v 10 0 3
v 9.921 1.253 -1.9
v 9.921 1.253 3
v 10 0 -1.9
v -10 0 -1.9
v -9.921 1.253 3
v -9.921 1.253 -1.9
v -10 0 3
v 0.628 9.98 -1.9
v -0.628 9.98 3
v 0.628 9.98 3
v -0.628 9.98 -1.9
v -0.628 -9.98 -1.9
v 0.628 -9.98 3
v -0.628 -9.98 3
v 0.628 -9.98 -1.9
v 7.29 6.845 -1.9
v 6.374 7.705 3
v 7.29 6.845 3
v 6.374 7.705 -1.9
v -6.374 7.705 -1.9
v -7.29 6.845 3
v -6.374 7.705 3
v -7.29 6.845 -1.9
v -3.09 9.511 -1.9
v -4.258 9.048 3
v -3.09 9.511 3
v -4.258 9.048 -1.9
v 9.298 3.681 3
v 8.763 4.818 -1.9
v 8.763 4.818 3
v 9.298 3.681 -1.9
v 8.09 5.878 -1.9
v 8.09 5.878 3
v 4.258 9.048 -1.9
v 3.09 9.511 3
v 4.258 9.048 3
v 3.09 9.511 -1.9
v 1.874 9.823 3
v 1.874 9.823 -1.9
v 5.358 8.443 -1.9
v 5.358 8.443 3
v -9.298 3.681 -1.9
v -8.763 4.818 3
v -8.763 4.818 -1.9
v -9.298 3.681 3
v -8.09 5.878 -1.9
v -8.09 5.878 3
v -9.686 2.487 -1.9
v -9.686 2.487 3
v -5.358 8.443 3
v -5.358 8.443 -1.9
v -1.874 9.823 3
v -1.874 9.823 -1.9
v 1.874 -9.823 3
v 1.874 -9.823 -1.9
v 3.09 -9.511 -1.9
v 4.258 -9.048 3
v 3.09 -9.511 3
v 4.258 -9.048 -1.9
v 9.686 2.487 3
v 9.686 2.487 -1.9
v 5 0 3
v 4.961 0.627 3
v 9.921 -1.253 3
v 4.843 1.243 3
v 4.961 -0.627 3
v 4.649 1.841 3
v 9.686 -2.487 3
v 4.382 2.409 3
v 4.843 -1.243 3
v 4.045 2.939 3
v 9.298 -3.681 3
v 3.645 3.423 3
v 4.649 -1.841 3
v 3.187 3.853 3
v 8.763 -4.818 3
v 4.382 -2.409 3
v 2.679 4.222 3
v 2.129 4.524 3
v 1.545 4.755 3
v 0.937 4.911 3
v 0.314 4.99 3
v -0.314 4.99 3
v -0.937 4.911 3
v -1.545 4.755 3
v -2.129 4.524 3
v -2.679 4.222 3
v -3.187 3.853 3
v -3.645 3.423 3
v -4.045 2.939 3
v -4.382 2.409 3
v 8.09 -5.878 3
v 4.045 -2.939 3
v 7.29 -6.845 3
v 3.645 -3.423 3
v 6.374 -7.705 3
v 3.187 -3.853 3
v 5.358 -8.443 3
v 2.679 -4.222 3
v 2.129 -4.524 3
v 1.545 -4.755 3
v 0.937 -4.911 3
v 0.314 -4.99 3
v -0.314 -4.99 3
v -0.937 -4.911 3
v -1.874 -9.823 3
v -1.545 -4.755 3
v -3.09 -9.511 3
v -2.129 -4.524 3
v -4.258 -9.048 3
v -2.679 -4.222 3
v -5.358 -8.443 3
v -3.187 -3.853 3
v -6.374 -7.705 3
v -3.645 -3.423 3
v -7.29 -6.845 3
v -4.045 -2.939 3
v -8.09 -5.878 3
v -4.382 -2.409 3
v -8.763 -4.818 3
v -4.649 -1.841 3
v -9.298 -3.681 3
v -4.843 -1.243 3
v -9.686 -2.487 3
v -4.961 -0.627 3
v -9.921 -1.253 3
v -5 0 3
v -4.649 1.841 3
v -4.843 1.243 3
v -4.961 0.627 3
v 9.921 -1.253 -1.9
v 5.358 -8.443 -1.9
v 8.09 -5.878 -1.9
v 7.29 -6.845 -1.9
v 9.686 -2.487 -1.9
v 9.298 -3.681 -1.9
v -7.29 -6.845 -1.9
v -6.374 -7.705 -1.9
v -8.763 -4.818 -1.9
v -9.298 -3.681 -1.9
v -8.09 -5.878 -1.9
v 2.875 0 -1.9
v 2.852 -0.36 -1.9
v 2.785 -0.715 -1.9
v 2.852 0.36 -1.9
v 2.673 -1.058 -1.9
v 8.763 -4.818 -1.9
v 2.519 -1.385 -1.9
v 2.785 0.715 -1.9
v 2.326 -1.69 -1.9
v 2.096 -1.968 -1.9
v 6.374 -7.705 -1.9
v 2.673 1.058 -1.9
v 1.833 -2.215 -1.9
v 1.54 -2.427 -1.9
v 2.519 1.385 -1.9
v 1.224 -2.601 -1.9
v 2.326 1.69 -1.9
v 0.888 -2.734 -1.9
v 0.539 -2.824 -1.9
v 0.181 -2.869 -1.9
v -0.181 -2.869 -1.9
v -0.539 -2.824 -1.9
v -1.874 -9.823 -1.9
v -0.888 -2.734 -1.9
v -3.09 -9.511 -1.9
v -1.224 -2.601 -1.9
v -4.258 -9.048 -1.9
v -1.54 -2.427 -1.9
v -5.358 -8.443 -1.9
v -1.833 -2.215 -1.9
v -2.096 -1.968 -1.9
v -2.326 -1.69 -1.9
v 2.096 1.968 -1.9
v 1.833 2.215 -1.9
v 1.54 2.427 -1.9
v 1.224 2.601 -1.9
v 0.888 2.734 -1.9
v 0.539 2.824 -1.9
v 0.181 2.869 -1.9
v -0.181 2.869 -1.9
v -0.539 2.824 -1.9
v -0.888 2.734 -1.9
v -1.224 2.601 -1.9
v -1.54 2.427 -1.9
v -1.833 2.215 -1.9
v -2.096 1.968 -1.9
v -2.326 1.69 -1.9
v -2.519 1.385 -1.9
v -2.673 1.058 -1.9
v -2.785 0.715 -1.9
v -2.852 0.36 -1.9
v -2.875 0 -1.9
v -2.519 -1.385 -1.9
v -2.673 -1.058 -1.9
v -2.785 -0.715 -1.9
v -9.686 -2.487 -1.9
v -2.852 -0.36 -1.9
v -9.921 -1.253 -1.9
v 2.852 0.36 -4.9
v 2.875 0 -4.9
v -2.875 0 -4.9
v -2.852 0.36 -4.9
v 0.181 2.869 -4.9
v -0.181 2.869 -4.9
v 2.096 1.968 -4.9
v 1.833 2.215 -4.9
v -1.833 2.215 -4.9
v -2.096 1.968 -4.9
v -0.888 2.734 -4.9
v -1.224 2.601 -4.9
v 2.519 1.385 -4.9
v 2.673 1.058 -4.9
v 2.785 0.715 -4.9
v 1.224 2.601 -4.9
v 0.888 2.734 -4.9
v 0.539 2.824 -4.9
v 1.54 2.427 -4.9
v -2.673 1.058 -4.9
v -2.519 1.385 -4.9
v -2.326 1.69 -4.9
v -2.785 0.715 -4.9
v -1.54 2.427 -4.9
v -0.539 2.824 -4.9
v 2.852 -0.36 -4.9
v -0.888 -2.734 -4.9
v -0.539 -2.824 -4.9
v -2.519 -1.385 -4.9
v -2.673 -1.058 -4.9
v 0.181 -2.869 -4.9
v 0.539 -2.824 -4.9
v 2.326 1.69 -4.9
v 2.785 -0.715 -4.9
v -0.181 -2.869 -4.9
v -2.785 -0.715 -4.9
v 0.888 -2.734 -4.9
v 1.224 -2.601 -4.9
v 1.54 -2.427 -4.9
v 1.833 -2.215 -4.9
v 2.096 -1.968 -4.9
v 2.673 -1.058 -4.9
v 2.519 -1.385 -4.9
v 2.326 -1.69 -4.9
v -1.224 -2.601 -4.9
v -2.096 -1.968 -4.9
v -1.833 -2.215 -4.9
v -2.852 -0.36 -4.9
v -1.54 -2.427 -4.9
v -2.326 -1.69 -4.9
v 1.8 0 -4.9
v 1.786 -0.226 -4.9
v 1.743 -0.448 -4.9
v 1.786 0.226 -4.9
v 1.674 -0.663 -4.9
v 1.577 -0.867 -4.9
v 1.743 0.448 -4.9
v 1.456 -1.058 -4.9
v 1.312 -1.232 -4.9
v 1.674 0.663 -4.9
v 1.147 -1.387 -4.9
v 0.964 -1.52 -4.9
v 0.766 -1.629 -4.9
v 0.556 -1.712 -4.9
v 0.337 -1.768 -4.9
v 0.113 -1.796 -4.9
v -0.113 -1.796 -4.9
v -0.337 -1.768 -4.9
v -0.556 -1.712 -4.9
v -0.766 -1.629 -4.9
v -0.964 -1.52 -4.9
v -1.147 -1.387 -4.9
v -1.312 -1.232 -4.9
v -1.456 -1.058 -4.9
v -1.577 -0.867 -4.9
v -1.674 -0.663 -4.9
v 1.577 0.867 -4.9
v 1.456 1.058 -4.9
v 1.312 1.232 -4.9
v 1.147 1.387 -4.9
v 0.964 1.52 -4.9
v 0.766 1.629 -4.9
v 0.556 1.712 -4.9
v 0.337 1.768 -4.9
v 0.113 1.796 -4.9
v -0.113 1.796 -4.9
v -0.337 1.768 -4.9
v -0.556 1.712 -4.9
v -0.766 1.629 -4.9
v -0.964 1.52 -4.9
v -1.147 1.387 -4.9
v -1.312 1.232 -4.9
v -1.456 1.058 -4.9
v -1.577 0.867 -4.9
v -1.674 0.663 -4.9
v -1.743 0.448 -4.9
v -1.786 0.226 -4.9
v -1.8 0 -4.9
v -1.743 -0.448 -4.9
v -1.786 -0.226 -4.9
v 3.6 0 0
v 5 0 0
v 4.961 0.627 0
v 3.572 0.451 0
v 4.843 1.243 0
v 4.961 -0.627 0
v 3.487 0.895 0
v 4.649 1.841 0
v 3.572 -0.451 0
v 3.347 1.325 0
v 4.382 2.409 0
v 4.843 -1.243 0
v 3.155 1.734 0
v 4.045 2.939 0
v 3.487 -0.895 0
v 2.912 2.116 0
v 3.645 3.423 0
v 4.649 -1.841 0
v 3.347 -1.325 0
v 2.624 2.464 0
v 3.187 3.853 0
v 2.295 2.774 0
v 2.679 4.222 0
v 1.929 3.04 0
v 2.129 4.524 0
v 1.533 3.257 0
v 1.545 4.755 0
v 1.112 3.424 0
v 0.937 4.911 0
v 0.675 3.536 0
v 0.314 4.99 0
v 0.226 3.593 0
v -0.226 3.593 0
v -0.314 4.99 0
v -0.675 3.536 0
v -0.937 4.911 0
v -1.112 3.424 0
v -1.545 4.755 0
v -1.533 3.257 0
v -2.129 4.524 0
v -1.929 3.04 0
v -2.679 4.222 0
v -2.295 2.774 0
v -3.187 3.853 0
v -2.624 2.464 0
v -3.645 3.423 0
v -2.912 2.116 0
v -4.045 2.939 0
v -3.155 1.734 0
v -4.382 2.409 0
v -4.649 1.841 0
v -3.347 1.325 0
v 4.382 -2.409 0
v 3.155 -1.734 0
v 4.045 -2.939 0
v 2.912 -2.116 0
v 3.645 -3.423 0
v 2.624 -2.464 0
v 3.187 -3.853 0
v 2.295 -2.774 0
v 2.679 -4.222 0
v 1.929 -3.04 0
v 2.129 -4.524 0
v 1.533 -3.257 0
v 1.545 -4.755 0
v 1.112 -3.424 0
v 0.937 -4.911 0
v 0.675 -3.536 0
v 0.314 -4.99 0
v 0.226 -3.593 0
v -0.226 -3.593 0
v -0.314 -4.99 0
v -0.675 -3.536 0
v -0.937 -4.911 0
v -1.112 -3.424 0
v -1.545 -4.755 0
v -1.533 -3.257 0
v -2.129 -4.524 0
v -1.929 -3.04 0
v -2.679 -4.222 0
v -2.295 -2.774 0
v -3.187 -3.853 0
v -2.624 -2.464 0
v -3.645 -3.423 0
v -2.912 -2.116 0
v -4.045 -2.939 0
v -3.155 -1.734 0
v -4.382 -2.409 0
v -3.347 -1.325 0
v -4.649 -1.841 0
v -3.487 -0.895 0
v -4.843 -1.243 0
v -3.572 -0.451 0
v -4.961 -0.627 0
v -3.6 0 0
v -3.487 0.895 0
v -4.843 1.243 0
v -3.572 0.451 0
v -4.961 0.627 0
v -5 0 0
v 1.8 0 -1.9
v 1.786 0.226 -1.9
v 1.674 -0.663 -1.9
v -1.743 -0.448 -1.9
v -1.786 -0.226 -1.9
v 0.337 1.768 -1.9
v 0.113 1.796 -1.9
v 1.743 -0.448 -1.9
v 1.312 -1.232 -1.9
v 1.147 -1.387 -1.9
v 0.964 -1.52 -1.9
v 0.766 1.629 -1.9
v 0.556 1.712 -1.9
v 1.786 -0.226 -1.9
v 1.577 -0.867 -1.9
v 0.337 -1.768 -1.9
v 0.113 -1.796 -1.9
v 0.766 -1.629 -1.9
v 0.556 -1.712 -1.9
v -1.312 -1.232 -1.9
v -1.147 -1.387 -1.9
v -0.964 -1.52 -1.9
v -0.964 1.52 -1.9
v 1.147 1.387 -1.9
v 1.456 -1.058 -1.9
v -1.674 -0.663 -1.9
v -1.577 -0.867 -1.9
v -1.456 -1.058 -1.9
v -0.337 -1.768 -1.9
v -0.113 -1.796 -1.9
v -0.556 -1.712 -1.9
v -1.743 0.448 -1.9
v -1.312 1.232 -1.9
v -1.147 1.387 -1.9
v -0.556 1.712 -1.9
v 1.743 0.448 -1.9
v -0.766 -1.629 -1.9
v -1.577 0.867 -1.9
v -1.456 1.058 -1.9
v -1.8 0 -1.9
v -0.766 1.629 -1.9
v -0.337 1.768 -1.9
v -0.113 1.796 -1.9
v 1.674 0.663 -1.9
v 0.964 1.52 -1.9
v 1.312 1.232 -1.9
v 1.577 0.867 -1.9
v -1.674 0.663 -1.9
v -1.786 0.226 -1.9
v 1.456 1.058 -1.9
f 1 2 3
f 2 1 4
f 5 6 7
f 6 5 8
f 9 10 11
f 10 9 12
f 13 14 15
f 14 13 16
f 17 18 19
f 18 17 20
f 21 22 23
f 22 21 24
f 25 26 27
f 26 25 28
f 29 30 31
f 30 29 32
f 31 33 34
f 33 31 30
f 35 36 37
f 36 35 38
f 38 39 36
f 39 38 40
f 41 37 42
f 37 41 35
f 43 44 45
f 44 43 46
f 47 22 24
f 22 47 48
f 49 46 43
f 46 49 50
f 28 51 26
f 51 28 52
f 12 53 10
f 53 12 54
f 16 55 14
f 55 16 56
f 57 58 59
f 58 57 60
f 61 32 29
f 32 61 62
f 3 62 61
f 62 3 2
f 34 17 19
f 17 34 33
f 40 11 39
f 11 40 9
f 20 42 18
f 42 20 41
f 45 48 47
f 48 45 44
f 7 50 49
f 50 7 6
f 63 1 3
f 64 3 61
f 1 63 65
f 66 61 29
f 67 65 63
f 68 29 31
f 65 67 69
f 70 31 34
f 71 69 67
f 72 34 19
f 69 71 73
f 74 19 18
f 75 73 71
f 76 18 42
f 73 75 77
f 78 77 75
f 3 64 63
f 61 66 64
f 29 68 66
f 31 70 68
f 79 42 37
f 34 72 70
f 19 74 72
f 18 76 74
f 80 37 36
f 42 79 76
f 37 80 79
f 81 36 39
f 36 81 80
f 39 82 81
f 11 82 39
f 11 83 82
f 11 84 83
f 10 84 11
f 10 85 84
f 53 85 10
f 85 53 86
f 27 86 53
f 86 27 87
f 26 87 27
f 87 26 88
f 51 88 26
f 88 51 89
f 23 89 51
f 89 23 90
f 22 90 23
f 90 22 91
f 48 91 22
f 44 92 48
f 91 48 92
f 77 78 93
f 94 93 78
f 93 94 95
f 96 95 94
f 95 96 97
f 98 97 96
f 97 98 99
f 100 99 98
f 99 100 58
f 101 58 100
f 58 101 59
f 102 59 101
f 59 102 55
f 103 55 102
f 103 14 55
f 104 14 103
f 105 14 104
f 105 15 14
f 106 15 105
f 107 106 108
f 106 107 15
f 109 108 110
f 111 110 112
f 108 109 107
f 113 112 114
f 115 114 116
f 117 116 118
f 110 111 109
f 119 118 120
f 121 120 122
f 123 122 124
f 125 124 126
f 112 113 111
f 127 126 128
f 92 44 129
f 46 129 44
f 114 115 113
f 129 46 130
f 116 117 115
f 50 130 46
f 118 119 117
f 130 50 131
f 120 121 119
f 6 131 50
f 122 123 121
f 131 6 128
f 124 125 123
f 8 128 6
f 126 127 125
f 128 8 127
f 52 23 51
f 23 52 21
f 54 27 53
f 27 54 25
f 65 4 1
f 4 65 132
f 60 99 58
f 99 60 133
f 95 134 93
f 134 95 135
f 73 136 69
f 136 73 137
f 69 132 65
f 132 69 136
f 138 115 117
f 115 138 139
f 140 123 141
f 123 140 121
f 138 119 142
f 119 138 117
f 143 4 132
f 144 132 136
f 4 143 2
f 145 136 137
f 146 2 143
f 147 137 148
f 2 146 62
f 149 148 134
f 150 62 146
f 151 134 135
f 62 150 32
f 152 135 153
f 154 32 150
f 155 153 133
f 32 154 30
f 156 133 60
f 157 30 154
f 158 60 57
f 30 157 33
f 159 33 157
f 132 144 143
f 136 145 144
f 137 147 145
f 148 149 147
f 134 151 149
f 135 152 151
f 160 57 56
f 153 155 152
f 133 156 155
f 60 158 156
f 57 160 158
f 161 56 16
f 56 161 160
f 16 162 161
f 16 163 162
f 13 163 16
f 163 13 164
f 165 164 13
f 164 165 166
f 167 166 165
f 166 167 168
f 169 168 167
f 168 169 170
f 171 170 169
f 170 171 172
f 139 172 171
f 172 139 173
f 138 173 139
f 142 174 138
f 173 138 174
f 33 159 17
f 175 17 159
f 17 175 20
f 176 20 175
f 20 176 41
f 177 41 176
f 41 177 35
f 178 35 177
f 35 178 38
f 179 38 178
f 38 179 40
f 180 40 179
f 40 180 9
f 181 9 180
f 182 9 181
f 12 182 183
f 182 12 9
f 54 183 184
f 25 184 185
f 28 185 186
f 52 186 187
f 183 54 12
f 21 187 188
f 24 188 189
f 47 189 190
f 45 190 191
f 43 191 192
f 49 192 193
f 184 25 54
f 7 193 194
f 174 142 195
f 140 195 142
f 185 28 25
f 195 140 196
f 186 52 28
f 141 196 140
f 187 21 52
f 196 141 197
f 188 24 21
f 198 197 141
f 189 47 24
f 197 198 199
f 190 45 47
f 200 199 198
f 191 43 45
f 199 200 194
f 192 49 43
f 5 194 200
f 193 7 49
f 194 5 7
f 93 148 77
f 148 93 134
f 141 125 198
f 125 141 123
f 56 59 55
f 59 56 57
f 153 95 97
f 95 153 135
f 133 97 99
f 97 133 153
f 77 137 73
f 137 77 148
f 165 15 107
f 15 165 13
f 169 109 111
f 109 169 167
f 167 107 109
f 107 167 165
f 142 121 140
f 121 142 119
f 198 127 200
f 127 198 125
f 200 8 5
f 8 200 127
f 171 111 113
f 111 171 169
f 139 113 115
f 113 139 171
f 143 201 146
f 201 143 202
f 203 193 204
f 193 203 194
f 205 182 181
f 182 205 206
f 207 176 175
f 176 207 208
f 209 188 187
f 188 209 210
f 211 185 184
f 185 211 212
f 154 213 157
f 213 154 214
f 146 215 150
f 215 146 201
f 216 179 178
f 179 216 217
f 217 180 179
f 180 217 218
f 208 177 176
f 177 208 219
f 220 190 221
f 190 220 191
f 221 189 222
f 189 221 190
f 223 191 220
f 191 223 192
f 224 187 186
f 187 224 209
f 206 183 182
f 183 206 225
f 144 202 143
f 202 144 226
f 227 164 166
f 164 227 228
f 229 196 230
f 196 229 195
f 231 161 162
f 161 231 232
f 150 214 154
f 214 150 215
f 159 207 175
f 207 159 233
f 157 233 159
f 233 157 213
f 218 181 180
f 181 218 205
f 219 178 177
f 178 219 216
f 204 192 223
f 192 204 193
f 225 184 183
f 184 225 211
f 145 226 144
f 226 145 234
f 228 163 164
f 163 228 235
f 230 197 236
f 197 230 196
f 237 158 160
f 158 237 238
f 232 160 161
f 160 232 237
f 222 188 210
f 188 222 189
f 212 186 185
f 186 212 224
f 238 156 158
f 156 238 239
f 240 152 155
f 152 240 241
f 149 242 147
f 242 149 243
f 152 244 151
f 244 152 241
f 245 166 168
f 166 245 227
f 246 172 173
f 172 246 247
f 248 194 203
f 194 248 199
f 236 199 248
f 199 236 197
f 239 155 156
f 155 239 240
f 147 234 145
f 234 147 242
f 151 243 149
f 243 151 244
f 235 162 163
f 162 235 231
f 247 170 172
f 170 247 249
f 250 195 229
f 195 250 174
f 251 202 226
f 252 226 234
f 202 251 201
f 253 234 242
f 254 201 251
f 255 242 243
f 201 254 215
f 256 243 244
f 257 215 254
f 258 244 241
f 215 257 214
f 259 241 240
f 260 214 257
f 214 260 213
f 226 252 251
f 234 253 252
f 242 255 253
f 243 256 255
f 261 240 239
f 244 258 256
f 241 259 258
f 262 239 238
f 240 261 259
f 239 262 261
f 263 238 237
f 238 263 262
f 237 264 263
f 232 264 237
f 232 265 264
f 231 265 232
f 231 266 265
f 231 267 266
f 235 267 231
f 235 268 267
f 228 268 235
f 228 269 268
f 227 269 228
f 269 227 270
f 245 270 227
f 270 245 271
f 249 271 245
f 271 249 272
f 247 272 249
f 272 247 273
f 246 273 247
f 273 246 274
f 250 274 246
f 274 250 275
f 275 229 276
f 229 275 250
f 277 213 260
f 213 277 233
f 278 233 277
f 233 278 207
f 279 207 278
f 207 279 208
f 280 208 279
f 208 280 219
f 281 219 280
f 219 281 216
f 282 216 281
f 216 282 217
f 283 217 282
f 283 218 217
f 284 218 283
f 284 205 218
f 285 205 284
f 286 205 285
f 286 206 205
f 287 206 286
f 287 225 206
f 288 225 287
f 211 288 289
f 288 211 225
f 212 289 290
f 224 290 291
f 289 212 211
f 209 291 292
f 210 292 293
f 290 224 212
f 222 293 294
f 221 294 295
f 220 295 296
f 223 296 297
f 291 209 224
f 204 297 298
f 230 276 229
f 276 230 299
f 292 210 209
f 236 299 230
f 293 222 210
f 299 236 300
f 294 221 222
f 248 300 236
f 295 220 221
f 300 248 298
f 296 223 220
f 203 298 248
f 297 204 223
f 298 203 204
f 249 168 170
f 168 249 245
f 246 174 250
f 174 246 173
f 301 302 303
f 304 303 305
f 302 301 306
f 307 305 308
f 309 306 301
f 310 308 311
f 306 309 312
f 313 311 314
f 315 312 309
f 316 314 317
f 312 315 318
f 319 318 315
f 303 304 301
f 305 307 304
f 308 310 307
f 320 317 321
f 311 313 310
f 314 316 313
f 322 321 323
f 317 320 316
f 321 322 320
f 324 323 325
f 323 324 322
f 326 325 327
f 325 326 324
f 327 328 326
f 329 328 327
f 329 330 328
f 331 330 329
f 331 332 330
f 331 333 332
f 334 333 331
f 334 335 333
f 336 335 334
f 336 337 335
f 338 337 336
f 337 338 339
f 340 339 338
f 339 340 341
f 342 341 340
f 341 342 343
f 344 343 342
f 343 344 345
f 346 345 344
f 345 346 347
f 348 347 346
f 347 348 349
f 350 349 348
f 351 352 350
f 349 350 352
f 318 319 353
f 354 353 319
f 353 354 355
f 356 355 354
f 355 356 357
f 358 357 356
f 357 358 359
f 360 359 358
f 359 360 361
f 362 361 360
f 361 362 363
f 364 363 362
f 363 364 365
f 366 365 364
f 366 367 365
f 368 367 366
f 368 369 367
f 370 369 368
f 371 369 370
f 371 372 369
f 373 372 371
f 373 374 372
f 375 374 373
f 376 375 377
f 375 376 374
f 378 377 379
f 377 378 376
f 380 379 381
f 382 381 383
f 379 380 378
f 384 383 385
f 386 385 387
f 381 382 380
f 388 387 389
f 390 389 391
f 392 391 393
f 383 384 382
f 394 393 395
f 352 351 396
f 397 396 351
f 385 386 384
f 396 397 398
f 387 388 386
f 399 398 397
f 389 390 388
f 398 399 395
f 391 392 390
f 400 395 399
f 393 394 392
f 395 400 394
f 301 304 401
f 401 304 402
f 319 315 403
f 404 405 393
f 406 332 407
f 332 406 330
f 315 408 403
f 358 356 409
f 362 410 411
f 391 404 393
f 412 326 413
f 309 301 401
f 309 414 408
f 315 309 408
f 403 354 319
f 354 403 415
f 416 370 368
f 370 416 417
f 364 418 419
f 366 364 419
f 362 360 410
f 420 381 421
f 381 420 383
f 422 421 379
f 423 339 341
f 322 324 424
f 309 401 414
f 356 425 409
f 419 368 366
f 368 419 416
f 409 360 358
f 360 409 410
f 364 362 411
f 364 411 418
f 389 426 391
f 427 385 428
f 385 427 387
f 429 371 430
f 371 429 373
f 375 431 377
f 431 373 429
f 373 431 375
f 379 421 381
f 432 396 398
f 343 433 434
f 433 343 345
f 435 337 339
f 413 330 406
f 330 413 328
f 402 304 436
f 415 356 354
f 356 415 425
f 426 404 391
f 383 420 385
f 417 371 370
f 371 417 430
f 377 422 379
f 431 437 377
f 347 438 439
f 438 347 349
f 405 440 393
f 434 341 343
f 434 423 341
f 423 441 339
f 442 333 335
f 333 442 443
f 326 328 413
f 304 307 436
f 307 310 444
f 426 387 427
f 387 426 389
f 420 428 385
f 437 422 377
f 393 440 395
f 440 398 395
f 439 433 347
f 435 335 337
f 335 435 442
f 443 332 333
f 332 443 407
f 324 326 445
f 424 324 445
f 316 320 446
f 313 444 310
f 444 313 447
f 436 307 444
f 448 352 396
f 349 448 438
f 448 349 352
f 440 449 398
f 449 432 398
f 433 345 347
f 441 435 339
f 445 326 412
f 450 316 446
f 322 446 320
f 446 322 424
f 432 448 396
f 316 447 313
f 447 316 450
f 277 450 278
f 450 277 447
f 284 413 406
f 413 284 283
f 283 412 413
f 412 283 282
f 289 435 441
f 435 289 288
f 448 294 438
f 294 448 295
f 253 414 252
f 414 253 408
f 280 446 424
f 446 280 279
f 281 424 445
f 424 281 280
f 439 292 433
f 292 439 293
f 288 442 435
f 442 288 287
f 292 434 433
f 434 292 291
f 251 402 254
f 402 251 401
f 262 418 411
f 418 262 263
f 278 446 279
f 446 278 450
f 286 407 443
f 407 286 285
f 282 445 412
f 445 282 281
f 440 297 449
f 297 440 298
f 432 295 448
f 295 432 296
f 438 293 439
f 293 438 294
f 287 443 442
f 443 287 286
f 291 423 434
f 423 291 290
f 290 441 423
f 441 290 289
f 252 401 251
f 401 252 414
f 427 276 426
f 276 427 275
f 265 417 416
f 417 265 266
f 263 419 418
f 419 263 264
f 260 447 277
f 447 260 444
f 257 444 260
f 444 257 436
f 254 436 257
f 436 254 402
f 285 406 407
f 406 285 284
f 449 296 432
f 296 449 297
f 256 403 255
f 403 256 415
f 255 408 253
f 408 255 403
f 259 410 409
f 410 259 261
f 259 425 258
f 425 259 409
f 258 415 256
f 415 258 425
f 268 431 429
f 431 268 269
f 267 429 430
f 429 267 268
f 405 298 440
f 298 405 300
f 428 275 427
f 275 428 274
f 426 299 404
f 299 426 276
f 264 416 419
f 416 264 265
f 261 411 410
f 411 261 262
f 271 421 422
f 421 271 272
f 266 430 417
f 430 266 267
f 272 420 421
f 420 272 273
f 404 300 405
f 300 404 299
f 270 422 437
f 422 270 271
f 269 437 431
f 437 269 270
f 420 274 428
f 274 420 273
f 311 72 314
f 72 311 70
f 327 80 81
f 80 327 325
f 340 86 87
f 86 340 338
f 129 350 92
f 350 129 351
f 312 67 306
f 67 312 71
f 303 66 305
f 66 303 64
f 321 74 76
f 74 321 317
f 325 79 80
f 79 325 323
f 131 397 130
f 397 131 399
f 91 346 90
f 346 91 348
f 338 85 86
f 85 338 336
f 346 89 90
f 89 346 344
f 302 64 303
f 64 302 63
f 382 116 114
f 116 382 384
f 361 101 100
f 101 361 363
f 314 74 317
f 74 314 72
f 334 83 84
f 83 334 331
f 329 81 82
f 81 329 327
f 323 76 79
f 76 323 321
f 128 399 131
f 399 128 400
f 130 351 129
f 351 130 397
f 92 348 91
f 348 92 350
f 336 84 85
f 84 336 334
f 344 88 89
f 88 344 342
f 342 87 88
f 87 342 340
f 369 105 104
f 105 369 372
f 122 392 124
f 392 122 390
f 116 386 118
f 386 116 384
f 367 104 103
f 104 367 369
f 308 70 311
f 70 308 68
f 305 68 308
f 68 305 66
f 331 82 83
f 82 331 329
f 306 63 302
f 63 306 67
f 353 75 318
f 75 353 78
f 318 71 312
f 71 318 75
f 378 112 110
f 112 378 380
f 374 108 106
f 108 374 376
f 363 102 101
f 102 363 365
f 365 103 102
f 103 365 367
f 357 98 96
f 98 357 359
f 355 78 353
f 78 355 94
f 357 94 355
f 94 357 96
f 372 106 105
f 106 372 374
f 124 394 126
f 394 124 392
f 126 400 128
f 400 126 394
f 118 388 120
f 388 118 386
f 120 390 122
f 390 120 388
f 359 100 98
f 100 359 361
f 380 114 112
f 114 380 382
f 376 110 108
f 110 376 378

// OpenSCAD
$fn = 50;

difference() {
	union() {
		translate(v = [0, 0, -1.9000000000000004]) {
			cylinder(h = 4.9, r = 10.0);
		}
		#translate(v = [0, 0, -4.9]) {
			cylinder(h = 4.9, r = 2.875);
		}
	}
	union() {
		translate(v = [0, 0, 0]) {
			rotate(a = [0, 0, 0]) {
				difference() {
					union() {
						translate(v = [0, 0, -4.9]) {
							cylinder(h = 4.9, r = 1.5);
						}
						translate(v = [0, 0, -1.9]) {
							cylinder(h = 1.9, r1 = 1.8, r2 = 3.6);
						}
						translate(v = [0, 0, -4.9]) {
							cylinder(h = 4.9, r = 1.8);
						}
						translate(v = [0, 0, -4.9]) {
							cylinder(h = 4.9, r = 1.5);
						}
					}
					union();
				}
			}
		}
		#cylinder(h = 3, r = 5.0);
	}
}
